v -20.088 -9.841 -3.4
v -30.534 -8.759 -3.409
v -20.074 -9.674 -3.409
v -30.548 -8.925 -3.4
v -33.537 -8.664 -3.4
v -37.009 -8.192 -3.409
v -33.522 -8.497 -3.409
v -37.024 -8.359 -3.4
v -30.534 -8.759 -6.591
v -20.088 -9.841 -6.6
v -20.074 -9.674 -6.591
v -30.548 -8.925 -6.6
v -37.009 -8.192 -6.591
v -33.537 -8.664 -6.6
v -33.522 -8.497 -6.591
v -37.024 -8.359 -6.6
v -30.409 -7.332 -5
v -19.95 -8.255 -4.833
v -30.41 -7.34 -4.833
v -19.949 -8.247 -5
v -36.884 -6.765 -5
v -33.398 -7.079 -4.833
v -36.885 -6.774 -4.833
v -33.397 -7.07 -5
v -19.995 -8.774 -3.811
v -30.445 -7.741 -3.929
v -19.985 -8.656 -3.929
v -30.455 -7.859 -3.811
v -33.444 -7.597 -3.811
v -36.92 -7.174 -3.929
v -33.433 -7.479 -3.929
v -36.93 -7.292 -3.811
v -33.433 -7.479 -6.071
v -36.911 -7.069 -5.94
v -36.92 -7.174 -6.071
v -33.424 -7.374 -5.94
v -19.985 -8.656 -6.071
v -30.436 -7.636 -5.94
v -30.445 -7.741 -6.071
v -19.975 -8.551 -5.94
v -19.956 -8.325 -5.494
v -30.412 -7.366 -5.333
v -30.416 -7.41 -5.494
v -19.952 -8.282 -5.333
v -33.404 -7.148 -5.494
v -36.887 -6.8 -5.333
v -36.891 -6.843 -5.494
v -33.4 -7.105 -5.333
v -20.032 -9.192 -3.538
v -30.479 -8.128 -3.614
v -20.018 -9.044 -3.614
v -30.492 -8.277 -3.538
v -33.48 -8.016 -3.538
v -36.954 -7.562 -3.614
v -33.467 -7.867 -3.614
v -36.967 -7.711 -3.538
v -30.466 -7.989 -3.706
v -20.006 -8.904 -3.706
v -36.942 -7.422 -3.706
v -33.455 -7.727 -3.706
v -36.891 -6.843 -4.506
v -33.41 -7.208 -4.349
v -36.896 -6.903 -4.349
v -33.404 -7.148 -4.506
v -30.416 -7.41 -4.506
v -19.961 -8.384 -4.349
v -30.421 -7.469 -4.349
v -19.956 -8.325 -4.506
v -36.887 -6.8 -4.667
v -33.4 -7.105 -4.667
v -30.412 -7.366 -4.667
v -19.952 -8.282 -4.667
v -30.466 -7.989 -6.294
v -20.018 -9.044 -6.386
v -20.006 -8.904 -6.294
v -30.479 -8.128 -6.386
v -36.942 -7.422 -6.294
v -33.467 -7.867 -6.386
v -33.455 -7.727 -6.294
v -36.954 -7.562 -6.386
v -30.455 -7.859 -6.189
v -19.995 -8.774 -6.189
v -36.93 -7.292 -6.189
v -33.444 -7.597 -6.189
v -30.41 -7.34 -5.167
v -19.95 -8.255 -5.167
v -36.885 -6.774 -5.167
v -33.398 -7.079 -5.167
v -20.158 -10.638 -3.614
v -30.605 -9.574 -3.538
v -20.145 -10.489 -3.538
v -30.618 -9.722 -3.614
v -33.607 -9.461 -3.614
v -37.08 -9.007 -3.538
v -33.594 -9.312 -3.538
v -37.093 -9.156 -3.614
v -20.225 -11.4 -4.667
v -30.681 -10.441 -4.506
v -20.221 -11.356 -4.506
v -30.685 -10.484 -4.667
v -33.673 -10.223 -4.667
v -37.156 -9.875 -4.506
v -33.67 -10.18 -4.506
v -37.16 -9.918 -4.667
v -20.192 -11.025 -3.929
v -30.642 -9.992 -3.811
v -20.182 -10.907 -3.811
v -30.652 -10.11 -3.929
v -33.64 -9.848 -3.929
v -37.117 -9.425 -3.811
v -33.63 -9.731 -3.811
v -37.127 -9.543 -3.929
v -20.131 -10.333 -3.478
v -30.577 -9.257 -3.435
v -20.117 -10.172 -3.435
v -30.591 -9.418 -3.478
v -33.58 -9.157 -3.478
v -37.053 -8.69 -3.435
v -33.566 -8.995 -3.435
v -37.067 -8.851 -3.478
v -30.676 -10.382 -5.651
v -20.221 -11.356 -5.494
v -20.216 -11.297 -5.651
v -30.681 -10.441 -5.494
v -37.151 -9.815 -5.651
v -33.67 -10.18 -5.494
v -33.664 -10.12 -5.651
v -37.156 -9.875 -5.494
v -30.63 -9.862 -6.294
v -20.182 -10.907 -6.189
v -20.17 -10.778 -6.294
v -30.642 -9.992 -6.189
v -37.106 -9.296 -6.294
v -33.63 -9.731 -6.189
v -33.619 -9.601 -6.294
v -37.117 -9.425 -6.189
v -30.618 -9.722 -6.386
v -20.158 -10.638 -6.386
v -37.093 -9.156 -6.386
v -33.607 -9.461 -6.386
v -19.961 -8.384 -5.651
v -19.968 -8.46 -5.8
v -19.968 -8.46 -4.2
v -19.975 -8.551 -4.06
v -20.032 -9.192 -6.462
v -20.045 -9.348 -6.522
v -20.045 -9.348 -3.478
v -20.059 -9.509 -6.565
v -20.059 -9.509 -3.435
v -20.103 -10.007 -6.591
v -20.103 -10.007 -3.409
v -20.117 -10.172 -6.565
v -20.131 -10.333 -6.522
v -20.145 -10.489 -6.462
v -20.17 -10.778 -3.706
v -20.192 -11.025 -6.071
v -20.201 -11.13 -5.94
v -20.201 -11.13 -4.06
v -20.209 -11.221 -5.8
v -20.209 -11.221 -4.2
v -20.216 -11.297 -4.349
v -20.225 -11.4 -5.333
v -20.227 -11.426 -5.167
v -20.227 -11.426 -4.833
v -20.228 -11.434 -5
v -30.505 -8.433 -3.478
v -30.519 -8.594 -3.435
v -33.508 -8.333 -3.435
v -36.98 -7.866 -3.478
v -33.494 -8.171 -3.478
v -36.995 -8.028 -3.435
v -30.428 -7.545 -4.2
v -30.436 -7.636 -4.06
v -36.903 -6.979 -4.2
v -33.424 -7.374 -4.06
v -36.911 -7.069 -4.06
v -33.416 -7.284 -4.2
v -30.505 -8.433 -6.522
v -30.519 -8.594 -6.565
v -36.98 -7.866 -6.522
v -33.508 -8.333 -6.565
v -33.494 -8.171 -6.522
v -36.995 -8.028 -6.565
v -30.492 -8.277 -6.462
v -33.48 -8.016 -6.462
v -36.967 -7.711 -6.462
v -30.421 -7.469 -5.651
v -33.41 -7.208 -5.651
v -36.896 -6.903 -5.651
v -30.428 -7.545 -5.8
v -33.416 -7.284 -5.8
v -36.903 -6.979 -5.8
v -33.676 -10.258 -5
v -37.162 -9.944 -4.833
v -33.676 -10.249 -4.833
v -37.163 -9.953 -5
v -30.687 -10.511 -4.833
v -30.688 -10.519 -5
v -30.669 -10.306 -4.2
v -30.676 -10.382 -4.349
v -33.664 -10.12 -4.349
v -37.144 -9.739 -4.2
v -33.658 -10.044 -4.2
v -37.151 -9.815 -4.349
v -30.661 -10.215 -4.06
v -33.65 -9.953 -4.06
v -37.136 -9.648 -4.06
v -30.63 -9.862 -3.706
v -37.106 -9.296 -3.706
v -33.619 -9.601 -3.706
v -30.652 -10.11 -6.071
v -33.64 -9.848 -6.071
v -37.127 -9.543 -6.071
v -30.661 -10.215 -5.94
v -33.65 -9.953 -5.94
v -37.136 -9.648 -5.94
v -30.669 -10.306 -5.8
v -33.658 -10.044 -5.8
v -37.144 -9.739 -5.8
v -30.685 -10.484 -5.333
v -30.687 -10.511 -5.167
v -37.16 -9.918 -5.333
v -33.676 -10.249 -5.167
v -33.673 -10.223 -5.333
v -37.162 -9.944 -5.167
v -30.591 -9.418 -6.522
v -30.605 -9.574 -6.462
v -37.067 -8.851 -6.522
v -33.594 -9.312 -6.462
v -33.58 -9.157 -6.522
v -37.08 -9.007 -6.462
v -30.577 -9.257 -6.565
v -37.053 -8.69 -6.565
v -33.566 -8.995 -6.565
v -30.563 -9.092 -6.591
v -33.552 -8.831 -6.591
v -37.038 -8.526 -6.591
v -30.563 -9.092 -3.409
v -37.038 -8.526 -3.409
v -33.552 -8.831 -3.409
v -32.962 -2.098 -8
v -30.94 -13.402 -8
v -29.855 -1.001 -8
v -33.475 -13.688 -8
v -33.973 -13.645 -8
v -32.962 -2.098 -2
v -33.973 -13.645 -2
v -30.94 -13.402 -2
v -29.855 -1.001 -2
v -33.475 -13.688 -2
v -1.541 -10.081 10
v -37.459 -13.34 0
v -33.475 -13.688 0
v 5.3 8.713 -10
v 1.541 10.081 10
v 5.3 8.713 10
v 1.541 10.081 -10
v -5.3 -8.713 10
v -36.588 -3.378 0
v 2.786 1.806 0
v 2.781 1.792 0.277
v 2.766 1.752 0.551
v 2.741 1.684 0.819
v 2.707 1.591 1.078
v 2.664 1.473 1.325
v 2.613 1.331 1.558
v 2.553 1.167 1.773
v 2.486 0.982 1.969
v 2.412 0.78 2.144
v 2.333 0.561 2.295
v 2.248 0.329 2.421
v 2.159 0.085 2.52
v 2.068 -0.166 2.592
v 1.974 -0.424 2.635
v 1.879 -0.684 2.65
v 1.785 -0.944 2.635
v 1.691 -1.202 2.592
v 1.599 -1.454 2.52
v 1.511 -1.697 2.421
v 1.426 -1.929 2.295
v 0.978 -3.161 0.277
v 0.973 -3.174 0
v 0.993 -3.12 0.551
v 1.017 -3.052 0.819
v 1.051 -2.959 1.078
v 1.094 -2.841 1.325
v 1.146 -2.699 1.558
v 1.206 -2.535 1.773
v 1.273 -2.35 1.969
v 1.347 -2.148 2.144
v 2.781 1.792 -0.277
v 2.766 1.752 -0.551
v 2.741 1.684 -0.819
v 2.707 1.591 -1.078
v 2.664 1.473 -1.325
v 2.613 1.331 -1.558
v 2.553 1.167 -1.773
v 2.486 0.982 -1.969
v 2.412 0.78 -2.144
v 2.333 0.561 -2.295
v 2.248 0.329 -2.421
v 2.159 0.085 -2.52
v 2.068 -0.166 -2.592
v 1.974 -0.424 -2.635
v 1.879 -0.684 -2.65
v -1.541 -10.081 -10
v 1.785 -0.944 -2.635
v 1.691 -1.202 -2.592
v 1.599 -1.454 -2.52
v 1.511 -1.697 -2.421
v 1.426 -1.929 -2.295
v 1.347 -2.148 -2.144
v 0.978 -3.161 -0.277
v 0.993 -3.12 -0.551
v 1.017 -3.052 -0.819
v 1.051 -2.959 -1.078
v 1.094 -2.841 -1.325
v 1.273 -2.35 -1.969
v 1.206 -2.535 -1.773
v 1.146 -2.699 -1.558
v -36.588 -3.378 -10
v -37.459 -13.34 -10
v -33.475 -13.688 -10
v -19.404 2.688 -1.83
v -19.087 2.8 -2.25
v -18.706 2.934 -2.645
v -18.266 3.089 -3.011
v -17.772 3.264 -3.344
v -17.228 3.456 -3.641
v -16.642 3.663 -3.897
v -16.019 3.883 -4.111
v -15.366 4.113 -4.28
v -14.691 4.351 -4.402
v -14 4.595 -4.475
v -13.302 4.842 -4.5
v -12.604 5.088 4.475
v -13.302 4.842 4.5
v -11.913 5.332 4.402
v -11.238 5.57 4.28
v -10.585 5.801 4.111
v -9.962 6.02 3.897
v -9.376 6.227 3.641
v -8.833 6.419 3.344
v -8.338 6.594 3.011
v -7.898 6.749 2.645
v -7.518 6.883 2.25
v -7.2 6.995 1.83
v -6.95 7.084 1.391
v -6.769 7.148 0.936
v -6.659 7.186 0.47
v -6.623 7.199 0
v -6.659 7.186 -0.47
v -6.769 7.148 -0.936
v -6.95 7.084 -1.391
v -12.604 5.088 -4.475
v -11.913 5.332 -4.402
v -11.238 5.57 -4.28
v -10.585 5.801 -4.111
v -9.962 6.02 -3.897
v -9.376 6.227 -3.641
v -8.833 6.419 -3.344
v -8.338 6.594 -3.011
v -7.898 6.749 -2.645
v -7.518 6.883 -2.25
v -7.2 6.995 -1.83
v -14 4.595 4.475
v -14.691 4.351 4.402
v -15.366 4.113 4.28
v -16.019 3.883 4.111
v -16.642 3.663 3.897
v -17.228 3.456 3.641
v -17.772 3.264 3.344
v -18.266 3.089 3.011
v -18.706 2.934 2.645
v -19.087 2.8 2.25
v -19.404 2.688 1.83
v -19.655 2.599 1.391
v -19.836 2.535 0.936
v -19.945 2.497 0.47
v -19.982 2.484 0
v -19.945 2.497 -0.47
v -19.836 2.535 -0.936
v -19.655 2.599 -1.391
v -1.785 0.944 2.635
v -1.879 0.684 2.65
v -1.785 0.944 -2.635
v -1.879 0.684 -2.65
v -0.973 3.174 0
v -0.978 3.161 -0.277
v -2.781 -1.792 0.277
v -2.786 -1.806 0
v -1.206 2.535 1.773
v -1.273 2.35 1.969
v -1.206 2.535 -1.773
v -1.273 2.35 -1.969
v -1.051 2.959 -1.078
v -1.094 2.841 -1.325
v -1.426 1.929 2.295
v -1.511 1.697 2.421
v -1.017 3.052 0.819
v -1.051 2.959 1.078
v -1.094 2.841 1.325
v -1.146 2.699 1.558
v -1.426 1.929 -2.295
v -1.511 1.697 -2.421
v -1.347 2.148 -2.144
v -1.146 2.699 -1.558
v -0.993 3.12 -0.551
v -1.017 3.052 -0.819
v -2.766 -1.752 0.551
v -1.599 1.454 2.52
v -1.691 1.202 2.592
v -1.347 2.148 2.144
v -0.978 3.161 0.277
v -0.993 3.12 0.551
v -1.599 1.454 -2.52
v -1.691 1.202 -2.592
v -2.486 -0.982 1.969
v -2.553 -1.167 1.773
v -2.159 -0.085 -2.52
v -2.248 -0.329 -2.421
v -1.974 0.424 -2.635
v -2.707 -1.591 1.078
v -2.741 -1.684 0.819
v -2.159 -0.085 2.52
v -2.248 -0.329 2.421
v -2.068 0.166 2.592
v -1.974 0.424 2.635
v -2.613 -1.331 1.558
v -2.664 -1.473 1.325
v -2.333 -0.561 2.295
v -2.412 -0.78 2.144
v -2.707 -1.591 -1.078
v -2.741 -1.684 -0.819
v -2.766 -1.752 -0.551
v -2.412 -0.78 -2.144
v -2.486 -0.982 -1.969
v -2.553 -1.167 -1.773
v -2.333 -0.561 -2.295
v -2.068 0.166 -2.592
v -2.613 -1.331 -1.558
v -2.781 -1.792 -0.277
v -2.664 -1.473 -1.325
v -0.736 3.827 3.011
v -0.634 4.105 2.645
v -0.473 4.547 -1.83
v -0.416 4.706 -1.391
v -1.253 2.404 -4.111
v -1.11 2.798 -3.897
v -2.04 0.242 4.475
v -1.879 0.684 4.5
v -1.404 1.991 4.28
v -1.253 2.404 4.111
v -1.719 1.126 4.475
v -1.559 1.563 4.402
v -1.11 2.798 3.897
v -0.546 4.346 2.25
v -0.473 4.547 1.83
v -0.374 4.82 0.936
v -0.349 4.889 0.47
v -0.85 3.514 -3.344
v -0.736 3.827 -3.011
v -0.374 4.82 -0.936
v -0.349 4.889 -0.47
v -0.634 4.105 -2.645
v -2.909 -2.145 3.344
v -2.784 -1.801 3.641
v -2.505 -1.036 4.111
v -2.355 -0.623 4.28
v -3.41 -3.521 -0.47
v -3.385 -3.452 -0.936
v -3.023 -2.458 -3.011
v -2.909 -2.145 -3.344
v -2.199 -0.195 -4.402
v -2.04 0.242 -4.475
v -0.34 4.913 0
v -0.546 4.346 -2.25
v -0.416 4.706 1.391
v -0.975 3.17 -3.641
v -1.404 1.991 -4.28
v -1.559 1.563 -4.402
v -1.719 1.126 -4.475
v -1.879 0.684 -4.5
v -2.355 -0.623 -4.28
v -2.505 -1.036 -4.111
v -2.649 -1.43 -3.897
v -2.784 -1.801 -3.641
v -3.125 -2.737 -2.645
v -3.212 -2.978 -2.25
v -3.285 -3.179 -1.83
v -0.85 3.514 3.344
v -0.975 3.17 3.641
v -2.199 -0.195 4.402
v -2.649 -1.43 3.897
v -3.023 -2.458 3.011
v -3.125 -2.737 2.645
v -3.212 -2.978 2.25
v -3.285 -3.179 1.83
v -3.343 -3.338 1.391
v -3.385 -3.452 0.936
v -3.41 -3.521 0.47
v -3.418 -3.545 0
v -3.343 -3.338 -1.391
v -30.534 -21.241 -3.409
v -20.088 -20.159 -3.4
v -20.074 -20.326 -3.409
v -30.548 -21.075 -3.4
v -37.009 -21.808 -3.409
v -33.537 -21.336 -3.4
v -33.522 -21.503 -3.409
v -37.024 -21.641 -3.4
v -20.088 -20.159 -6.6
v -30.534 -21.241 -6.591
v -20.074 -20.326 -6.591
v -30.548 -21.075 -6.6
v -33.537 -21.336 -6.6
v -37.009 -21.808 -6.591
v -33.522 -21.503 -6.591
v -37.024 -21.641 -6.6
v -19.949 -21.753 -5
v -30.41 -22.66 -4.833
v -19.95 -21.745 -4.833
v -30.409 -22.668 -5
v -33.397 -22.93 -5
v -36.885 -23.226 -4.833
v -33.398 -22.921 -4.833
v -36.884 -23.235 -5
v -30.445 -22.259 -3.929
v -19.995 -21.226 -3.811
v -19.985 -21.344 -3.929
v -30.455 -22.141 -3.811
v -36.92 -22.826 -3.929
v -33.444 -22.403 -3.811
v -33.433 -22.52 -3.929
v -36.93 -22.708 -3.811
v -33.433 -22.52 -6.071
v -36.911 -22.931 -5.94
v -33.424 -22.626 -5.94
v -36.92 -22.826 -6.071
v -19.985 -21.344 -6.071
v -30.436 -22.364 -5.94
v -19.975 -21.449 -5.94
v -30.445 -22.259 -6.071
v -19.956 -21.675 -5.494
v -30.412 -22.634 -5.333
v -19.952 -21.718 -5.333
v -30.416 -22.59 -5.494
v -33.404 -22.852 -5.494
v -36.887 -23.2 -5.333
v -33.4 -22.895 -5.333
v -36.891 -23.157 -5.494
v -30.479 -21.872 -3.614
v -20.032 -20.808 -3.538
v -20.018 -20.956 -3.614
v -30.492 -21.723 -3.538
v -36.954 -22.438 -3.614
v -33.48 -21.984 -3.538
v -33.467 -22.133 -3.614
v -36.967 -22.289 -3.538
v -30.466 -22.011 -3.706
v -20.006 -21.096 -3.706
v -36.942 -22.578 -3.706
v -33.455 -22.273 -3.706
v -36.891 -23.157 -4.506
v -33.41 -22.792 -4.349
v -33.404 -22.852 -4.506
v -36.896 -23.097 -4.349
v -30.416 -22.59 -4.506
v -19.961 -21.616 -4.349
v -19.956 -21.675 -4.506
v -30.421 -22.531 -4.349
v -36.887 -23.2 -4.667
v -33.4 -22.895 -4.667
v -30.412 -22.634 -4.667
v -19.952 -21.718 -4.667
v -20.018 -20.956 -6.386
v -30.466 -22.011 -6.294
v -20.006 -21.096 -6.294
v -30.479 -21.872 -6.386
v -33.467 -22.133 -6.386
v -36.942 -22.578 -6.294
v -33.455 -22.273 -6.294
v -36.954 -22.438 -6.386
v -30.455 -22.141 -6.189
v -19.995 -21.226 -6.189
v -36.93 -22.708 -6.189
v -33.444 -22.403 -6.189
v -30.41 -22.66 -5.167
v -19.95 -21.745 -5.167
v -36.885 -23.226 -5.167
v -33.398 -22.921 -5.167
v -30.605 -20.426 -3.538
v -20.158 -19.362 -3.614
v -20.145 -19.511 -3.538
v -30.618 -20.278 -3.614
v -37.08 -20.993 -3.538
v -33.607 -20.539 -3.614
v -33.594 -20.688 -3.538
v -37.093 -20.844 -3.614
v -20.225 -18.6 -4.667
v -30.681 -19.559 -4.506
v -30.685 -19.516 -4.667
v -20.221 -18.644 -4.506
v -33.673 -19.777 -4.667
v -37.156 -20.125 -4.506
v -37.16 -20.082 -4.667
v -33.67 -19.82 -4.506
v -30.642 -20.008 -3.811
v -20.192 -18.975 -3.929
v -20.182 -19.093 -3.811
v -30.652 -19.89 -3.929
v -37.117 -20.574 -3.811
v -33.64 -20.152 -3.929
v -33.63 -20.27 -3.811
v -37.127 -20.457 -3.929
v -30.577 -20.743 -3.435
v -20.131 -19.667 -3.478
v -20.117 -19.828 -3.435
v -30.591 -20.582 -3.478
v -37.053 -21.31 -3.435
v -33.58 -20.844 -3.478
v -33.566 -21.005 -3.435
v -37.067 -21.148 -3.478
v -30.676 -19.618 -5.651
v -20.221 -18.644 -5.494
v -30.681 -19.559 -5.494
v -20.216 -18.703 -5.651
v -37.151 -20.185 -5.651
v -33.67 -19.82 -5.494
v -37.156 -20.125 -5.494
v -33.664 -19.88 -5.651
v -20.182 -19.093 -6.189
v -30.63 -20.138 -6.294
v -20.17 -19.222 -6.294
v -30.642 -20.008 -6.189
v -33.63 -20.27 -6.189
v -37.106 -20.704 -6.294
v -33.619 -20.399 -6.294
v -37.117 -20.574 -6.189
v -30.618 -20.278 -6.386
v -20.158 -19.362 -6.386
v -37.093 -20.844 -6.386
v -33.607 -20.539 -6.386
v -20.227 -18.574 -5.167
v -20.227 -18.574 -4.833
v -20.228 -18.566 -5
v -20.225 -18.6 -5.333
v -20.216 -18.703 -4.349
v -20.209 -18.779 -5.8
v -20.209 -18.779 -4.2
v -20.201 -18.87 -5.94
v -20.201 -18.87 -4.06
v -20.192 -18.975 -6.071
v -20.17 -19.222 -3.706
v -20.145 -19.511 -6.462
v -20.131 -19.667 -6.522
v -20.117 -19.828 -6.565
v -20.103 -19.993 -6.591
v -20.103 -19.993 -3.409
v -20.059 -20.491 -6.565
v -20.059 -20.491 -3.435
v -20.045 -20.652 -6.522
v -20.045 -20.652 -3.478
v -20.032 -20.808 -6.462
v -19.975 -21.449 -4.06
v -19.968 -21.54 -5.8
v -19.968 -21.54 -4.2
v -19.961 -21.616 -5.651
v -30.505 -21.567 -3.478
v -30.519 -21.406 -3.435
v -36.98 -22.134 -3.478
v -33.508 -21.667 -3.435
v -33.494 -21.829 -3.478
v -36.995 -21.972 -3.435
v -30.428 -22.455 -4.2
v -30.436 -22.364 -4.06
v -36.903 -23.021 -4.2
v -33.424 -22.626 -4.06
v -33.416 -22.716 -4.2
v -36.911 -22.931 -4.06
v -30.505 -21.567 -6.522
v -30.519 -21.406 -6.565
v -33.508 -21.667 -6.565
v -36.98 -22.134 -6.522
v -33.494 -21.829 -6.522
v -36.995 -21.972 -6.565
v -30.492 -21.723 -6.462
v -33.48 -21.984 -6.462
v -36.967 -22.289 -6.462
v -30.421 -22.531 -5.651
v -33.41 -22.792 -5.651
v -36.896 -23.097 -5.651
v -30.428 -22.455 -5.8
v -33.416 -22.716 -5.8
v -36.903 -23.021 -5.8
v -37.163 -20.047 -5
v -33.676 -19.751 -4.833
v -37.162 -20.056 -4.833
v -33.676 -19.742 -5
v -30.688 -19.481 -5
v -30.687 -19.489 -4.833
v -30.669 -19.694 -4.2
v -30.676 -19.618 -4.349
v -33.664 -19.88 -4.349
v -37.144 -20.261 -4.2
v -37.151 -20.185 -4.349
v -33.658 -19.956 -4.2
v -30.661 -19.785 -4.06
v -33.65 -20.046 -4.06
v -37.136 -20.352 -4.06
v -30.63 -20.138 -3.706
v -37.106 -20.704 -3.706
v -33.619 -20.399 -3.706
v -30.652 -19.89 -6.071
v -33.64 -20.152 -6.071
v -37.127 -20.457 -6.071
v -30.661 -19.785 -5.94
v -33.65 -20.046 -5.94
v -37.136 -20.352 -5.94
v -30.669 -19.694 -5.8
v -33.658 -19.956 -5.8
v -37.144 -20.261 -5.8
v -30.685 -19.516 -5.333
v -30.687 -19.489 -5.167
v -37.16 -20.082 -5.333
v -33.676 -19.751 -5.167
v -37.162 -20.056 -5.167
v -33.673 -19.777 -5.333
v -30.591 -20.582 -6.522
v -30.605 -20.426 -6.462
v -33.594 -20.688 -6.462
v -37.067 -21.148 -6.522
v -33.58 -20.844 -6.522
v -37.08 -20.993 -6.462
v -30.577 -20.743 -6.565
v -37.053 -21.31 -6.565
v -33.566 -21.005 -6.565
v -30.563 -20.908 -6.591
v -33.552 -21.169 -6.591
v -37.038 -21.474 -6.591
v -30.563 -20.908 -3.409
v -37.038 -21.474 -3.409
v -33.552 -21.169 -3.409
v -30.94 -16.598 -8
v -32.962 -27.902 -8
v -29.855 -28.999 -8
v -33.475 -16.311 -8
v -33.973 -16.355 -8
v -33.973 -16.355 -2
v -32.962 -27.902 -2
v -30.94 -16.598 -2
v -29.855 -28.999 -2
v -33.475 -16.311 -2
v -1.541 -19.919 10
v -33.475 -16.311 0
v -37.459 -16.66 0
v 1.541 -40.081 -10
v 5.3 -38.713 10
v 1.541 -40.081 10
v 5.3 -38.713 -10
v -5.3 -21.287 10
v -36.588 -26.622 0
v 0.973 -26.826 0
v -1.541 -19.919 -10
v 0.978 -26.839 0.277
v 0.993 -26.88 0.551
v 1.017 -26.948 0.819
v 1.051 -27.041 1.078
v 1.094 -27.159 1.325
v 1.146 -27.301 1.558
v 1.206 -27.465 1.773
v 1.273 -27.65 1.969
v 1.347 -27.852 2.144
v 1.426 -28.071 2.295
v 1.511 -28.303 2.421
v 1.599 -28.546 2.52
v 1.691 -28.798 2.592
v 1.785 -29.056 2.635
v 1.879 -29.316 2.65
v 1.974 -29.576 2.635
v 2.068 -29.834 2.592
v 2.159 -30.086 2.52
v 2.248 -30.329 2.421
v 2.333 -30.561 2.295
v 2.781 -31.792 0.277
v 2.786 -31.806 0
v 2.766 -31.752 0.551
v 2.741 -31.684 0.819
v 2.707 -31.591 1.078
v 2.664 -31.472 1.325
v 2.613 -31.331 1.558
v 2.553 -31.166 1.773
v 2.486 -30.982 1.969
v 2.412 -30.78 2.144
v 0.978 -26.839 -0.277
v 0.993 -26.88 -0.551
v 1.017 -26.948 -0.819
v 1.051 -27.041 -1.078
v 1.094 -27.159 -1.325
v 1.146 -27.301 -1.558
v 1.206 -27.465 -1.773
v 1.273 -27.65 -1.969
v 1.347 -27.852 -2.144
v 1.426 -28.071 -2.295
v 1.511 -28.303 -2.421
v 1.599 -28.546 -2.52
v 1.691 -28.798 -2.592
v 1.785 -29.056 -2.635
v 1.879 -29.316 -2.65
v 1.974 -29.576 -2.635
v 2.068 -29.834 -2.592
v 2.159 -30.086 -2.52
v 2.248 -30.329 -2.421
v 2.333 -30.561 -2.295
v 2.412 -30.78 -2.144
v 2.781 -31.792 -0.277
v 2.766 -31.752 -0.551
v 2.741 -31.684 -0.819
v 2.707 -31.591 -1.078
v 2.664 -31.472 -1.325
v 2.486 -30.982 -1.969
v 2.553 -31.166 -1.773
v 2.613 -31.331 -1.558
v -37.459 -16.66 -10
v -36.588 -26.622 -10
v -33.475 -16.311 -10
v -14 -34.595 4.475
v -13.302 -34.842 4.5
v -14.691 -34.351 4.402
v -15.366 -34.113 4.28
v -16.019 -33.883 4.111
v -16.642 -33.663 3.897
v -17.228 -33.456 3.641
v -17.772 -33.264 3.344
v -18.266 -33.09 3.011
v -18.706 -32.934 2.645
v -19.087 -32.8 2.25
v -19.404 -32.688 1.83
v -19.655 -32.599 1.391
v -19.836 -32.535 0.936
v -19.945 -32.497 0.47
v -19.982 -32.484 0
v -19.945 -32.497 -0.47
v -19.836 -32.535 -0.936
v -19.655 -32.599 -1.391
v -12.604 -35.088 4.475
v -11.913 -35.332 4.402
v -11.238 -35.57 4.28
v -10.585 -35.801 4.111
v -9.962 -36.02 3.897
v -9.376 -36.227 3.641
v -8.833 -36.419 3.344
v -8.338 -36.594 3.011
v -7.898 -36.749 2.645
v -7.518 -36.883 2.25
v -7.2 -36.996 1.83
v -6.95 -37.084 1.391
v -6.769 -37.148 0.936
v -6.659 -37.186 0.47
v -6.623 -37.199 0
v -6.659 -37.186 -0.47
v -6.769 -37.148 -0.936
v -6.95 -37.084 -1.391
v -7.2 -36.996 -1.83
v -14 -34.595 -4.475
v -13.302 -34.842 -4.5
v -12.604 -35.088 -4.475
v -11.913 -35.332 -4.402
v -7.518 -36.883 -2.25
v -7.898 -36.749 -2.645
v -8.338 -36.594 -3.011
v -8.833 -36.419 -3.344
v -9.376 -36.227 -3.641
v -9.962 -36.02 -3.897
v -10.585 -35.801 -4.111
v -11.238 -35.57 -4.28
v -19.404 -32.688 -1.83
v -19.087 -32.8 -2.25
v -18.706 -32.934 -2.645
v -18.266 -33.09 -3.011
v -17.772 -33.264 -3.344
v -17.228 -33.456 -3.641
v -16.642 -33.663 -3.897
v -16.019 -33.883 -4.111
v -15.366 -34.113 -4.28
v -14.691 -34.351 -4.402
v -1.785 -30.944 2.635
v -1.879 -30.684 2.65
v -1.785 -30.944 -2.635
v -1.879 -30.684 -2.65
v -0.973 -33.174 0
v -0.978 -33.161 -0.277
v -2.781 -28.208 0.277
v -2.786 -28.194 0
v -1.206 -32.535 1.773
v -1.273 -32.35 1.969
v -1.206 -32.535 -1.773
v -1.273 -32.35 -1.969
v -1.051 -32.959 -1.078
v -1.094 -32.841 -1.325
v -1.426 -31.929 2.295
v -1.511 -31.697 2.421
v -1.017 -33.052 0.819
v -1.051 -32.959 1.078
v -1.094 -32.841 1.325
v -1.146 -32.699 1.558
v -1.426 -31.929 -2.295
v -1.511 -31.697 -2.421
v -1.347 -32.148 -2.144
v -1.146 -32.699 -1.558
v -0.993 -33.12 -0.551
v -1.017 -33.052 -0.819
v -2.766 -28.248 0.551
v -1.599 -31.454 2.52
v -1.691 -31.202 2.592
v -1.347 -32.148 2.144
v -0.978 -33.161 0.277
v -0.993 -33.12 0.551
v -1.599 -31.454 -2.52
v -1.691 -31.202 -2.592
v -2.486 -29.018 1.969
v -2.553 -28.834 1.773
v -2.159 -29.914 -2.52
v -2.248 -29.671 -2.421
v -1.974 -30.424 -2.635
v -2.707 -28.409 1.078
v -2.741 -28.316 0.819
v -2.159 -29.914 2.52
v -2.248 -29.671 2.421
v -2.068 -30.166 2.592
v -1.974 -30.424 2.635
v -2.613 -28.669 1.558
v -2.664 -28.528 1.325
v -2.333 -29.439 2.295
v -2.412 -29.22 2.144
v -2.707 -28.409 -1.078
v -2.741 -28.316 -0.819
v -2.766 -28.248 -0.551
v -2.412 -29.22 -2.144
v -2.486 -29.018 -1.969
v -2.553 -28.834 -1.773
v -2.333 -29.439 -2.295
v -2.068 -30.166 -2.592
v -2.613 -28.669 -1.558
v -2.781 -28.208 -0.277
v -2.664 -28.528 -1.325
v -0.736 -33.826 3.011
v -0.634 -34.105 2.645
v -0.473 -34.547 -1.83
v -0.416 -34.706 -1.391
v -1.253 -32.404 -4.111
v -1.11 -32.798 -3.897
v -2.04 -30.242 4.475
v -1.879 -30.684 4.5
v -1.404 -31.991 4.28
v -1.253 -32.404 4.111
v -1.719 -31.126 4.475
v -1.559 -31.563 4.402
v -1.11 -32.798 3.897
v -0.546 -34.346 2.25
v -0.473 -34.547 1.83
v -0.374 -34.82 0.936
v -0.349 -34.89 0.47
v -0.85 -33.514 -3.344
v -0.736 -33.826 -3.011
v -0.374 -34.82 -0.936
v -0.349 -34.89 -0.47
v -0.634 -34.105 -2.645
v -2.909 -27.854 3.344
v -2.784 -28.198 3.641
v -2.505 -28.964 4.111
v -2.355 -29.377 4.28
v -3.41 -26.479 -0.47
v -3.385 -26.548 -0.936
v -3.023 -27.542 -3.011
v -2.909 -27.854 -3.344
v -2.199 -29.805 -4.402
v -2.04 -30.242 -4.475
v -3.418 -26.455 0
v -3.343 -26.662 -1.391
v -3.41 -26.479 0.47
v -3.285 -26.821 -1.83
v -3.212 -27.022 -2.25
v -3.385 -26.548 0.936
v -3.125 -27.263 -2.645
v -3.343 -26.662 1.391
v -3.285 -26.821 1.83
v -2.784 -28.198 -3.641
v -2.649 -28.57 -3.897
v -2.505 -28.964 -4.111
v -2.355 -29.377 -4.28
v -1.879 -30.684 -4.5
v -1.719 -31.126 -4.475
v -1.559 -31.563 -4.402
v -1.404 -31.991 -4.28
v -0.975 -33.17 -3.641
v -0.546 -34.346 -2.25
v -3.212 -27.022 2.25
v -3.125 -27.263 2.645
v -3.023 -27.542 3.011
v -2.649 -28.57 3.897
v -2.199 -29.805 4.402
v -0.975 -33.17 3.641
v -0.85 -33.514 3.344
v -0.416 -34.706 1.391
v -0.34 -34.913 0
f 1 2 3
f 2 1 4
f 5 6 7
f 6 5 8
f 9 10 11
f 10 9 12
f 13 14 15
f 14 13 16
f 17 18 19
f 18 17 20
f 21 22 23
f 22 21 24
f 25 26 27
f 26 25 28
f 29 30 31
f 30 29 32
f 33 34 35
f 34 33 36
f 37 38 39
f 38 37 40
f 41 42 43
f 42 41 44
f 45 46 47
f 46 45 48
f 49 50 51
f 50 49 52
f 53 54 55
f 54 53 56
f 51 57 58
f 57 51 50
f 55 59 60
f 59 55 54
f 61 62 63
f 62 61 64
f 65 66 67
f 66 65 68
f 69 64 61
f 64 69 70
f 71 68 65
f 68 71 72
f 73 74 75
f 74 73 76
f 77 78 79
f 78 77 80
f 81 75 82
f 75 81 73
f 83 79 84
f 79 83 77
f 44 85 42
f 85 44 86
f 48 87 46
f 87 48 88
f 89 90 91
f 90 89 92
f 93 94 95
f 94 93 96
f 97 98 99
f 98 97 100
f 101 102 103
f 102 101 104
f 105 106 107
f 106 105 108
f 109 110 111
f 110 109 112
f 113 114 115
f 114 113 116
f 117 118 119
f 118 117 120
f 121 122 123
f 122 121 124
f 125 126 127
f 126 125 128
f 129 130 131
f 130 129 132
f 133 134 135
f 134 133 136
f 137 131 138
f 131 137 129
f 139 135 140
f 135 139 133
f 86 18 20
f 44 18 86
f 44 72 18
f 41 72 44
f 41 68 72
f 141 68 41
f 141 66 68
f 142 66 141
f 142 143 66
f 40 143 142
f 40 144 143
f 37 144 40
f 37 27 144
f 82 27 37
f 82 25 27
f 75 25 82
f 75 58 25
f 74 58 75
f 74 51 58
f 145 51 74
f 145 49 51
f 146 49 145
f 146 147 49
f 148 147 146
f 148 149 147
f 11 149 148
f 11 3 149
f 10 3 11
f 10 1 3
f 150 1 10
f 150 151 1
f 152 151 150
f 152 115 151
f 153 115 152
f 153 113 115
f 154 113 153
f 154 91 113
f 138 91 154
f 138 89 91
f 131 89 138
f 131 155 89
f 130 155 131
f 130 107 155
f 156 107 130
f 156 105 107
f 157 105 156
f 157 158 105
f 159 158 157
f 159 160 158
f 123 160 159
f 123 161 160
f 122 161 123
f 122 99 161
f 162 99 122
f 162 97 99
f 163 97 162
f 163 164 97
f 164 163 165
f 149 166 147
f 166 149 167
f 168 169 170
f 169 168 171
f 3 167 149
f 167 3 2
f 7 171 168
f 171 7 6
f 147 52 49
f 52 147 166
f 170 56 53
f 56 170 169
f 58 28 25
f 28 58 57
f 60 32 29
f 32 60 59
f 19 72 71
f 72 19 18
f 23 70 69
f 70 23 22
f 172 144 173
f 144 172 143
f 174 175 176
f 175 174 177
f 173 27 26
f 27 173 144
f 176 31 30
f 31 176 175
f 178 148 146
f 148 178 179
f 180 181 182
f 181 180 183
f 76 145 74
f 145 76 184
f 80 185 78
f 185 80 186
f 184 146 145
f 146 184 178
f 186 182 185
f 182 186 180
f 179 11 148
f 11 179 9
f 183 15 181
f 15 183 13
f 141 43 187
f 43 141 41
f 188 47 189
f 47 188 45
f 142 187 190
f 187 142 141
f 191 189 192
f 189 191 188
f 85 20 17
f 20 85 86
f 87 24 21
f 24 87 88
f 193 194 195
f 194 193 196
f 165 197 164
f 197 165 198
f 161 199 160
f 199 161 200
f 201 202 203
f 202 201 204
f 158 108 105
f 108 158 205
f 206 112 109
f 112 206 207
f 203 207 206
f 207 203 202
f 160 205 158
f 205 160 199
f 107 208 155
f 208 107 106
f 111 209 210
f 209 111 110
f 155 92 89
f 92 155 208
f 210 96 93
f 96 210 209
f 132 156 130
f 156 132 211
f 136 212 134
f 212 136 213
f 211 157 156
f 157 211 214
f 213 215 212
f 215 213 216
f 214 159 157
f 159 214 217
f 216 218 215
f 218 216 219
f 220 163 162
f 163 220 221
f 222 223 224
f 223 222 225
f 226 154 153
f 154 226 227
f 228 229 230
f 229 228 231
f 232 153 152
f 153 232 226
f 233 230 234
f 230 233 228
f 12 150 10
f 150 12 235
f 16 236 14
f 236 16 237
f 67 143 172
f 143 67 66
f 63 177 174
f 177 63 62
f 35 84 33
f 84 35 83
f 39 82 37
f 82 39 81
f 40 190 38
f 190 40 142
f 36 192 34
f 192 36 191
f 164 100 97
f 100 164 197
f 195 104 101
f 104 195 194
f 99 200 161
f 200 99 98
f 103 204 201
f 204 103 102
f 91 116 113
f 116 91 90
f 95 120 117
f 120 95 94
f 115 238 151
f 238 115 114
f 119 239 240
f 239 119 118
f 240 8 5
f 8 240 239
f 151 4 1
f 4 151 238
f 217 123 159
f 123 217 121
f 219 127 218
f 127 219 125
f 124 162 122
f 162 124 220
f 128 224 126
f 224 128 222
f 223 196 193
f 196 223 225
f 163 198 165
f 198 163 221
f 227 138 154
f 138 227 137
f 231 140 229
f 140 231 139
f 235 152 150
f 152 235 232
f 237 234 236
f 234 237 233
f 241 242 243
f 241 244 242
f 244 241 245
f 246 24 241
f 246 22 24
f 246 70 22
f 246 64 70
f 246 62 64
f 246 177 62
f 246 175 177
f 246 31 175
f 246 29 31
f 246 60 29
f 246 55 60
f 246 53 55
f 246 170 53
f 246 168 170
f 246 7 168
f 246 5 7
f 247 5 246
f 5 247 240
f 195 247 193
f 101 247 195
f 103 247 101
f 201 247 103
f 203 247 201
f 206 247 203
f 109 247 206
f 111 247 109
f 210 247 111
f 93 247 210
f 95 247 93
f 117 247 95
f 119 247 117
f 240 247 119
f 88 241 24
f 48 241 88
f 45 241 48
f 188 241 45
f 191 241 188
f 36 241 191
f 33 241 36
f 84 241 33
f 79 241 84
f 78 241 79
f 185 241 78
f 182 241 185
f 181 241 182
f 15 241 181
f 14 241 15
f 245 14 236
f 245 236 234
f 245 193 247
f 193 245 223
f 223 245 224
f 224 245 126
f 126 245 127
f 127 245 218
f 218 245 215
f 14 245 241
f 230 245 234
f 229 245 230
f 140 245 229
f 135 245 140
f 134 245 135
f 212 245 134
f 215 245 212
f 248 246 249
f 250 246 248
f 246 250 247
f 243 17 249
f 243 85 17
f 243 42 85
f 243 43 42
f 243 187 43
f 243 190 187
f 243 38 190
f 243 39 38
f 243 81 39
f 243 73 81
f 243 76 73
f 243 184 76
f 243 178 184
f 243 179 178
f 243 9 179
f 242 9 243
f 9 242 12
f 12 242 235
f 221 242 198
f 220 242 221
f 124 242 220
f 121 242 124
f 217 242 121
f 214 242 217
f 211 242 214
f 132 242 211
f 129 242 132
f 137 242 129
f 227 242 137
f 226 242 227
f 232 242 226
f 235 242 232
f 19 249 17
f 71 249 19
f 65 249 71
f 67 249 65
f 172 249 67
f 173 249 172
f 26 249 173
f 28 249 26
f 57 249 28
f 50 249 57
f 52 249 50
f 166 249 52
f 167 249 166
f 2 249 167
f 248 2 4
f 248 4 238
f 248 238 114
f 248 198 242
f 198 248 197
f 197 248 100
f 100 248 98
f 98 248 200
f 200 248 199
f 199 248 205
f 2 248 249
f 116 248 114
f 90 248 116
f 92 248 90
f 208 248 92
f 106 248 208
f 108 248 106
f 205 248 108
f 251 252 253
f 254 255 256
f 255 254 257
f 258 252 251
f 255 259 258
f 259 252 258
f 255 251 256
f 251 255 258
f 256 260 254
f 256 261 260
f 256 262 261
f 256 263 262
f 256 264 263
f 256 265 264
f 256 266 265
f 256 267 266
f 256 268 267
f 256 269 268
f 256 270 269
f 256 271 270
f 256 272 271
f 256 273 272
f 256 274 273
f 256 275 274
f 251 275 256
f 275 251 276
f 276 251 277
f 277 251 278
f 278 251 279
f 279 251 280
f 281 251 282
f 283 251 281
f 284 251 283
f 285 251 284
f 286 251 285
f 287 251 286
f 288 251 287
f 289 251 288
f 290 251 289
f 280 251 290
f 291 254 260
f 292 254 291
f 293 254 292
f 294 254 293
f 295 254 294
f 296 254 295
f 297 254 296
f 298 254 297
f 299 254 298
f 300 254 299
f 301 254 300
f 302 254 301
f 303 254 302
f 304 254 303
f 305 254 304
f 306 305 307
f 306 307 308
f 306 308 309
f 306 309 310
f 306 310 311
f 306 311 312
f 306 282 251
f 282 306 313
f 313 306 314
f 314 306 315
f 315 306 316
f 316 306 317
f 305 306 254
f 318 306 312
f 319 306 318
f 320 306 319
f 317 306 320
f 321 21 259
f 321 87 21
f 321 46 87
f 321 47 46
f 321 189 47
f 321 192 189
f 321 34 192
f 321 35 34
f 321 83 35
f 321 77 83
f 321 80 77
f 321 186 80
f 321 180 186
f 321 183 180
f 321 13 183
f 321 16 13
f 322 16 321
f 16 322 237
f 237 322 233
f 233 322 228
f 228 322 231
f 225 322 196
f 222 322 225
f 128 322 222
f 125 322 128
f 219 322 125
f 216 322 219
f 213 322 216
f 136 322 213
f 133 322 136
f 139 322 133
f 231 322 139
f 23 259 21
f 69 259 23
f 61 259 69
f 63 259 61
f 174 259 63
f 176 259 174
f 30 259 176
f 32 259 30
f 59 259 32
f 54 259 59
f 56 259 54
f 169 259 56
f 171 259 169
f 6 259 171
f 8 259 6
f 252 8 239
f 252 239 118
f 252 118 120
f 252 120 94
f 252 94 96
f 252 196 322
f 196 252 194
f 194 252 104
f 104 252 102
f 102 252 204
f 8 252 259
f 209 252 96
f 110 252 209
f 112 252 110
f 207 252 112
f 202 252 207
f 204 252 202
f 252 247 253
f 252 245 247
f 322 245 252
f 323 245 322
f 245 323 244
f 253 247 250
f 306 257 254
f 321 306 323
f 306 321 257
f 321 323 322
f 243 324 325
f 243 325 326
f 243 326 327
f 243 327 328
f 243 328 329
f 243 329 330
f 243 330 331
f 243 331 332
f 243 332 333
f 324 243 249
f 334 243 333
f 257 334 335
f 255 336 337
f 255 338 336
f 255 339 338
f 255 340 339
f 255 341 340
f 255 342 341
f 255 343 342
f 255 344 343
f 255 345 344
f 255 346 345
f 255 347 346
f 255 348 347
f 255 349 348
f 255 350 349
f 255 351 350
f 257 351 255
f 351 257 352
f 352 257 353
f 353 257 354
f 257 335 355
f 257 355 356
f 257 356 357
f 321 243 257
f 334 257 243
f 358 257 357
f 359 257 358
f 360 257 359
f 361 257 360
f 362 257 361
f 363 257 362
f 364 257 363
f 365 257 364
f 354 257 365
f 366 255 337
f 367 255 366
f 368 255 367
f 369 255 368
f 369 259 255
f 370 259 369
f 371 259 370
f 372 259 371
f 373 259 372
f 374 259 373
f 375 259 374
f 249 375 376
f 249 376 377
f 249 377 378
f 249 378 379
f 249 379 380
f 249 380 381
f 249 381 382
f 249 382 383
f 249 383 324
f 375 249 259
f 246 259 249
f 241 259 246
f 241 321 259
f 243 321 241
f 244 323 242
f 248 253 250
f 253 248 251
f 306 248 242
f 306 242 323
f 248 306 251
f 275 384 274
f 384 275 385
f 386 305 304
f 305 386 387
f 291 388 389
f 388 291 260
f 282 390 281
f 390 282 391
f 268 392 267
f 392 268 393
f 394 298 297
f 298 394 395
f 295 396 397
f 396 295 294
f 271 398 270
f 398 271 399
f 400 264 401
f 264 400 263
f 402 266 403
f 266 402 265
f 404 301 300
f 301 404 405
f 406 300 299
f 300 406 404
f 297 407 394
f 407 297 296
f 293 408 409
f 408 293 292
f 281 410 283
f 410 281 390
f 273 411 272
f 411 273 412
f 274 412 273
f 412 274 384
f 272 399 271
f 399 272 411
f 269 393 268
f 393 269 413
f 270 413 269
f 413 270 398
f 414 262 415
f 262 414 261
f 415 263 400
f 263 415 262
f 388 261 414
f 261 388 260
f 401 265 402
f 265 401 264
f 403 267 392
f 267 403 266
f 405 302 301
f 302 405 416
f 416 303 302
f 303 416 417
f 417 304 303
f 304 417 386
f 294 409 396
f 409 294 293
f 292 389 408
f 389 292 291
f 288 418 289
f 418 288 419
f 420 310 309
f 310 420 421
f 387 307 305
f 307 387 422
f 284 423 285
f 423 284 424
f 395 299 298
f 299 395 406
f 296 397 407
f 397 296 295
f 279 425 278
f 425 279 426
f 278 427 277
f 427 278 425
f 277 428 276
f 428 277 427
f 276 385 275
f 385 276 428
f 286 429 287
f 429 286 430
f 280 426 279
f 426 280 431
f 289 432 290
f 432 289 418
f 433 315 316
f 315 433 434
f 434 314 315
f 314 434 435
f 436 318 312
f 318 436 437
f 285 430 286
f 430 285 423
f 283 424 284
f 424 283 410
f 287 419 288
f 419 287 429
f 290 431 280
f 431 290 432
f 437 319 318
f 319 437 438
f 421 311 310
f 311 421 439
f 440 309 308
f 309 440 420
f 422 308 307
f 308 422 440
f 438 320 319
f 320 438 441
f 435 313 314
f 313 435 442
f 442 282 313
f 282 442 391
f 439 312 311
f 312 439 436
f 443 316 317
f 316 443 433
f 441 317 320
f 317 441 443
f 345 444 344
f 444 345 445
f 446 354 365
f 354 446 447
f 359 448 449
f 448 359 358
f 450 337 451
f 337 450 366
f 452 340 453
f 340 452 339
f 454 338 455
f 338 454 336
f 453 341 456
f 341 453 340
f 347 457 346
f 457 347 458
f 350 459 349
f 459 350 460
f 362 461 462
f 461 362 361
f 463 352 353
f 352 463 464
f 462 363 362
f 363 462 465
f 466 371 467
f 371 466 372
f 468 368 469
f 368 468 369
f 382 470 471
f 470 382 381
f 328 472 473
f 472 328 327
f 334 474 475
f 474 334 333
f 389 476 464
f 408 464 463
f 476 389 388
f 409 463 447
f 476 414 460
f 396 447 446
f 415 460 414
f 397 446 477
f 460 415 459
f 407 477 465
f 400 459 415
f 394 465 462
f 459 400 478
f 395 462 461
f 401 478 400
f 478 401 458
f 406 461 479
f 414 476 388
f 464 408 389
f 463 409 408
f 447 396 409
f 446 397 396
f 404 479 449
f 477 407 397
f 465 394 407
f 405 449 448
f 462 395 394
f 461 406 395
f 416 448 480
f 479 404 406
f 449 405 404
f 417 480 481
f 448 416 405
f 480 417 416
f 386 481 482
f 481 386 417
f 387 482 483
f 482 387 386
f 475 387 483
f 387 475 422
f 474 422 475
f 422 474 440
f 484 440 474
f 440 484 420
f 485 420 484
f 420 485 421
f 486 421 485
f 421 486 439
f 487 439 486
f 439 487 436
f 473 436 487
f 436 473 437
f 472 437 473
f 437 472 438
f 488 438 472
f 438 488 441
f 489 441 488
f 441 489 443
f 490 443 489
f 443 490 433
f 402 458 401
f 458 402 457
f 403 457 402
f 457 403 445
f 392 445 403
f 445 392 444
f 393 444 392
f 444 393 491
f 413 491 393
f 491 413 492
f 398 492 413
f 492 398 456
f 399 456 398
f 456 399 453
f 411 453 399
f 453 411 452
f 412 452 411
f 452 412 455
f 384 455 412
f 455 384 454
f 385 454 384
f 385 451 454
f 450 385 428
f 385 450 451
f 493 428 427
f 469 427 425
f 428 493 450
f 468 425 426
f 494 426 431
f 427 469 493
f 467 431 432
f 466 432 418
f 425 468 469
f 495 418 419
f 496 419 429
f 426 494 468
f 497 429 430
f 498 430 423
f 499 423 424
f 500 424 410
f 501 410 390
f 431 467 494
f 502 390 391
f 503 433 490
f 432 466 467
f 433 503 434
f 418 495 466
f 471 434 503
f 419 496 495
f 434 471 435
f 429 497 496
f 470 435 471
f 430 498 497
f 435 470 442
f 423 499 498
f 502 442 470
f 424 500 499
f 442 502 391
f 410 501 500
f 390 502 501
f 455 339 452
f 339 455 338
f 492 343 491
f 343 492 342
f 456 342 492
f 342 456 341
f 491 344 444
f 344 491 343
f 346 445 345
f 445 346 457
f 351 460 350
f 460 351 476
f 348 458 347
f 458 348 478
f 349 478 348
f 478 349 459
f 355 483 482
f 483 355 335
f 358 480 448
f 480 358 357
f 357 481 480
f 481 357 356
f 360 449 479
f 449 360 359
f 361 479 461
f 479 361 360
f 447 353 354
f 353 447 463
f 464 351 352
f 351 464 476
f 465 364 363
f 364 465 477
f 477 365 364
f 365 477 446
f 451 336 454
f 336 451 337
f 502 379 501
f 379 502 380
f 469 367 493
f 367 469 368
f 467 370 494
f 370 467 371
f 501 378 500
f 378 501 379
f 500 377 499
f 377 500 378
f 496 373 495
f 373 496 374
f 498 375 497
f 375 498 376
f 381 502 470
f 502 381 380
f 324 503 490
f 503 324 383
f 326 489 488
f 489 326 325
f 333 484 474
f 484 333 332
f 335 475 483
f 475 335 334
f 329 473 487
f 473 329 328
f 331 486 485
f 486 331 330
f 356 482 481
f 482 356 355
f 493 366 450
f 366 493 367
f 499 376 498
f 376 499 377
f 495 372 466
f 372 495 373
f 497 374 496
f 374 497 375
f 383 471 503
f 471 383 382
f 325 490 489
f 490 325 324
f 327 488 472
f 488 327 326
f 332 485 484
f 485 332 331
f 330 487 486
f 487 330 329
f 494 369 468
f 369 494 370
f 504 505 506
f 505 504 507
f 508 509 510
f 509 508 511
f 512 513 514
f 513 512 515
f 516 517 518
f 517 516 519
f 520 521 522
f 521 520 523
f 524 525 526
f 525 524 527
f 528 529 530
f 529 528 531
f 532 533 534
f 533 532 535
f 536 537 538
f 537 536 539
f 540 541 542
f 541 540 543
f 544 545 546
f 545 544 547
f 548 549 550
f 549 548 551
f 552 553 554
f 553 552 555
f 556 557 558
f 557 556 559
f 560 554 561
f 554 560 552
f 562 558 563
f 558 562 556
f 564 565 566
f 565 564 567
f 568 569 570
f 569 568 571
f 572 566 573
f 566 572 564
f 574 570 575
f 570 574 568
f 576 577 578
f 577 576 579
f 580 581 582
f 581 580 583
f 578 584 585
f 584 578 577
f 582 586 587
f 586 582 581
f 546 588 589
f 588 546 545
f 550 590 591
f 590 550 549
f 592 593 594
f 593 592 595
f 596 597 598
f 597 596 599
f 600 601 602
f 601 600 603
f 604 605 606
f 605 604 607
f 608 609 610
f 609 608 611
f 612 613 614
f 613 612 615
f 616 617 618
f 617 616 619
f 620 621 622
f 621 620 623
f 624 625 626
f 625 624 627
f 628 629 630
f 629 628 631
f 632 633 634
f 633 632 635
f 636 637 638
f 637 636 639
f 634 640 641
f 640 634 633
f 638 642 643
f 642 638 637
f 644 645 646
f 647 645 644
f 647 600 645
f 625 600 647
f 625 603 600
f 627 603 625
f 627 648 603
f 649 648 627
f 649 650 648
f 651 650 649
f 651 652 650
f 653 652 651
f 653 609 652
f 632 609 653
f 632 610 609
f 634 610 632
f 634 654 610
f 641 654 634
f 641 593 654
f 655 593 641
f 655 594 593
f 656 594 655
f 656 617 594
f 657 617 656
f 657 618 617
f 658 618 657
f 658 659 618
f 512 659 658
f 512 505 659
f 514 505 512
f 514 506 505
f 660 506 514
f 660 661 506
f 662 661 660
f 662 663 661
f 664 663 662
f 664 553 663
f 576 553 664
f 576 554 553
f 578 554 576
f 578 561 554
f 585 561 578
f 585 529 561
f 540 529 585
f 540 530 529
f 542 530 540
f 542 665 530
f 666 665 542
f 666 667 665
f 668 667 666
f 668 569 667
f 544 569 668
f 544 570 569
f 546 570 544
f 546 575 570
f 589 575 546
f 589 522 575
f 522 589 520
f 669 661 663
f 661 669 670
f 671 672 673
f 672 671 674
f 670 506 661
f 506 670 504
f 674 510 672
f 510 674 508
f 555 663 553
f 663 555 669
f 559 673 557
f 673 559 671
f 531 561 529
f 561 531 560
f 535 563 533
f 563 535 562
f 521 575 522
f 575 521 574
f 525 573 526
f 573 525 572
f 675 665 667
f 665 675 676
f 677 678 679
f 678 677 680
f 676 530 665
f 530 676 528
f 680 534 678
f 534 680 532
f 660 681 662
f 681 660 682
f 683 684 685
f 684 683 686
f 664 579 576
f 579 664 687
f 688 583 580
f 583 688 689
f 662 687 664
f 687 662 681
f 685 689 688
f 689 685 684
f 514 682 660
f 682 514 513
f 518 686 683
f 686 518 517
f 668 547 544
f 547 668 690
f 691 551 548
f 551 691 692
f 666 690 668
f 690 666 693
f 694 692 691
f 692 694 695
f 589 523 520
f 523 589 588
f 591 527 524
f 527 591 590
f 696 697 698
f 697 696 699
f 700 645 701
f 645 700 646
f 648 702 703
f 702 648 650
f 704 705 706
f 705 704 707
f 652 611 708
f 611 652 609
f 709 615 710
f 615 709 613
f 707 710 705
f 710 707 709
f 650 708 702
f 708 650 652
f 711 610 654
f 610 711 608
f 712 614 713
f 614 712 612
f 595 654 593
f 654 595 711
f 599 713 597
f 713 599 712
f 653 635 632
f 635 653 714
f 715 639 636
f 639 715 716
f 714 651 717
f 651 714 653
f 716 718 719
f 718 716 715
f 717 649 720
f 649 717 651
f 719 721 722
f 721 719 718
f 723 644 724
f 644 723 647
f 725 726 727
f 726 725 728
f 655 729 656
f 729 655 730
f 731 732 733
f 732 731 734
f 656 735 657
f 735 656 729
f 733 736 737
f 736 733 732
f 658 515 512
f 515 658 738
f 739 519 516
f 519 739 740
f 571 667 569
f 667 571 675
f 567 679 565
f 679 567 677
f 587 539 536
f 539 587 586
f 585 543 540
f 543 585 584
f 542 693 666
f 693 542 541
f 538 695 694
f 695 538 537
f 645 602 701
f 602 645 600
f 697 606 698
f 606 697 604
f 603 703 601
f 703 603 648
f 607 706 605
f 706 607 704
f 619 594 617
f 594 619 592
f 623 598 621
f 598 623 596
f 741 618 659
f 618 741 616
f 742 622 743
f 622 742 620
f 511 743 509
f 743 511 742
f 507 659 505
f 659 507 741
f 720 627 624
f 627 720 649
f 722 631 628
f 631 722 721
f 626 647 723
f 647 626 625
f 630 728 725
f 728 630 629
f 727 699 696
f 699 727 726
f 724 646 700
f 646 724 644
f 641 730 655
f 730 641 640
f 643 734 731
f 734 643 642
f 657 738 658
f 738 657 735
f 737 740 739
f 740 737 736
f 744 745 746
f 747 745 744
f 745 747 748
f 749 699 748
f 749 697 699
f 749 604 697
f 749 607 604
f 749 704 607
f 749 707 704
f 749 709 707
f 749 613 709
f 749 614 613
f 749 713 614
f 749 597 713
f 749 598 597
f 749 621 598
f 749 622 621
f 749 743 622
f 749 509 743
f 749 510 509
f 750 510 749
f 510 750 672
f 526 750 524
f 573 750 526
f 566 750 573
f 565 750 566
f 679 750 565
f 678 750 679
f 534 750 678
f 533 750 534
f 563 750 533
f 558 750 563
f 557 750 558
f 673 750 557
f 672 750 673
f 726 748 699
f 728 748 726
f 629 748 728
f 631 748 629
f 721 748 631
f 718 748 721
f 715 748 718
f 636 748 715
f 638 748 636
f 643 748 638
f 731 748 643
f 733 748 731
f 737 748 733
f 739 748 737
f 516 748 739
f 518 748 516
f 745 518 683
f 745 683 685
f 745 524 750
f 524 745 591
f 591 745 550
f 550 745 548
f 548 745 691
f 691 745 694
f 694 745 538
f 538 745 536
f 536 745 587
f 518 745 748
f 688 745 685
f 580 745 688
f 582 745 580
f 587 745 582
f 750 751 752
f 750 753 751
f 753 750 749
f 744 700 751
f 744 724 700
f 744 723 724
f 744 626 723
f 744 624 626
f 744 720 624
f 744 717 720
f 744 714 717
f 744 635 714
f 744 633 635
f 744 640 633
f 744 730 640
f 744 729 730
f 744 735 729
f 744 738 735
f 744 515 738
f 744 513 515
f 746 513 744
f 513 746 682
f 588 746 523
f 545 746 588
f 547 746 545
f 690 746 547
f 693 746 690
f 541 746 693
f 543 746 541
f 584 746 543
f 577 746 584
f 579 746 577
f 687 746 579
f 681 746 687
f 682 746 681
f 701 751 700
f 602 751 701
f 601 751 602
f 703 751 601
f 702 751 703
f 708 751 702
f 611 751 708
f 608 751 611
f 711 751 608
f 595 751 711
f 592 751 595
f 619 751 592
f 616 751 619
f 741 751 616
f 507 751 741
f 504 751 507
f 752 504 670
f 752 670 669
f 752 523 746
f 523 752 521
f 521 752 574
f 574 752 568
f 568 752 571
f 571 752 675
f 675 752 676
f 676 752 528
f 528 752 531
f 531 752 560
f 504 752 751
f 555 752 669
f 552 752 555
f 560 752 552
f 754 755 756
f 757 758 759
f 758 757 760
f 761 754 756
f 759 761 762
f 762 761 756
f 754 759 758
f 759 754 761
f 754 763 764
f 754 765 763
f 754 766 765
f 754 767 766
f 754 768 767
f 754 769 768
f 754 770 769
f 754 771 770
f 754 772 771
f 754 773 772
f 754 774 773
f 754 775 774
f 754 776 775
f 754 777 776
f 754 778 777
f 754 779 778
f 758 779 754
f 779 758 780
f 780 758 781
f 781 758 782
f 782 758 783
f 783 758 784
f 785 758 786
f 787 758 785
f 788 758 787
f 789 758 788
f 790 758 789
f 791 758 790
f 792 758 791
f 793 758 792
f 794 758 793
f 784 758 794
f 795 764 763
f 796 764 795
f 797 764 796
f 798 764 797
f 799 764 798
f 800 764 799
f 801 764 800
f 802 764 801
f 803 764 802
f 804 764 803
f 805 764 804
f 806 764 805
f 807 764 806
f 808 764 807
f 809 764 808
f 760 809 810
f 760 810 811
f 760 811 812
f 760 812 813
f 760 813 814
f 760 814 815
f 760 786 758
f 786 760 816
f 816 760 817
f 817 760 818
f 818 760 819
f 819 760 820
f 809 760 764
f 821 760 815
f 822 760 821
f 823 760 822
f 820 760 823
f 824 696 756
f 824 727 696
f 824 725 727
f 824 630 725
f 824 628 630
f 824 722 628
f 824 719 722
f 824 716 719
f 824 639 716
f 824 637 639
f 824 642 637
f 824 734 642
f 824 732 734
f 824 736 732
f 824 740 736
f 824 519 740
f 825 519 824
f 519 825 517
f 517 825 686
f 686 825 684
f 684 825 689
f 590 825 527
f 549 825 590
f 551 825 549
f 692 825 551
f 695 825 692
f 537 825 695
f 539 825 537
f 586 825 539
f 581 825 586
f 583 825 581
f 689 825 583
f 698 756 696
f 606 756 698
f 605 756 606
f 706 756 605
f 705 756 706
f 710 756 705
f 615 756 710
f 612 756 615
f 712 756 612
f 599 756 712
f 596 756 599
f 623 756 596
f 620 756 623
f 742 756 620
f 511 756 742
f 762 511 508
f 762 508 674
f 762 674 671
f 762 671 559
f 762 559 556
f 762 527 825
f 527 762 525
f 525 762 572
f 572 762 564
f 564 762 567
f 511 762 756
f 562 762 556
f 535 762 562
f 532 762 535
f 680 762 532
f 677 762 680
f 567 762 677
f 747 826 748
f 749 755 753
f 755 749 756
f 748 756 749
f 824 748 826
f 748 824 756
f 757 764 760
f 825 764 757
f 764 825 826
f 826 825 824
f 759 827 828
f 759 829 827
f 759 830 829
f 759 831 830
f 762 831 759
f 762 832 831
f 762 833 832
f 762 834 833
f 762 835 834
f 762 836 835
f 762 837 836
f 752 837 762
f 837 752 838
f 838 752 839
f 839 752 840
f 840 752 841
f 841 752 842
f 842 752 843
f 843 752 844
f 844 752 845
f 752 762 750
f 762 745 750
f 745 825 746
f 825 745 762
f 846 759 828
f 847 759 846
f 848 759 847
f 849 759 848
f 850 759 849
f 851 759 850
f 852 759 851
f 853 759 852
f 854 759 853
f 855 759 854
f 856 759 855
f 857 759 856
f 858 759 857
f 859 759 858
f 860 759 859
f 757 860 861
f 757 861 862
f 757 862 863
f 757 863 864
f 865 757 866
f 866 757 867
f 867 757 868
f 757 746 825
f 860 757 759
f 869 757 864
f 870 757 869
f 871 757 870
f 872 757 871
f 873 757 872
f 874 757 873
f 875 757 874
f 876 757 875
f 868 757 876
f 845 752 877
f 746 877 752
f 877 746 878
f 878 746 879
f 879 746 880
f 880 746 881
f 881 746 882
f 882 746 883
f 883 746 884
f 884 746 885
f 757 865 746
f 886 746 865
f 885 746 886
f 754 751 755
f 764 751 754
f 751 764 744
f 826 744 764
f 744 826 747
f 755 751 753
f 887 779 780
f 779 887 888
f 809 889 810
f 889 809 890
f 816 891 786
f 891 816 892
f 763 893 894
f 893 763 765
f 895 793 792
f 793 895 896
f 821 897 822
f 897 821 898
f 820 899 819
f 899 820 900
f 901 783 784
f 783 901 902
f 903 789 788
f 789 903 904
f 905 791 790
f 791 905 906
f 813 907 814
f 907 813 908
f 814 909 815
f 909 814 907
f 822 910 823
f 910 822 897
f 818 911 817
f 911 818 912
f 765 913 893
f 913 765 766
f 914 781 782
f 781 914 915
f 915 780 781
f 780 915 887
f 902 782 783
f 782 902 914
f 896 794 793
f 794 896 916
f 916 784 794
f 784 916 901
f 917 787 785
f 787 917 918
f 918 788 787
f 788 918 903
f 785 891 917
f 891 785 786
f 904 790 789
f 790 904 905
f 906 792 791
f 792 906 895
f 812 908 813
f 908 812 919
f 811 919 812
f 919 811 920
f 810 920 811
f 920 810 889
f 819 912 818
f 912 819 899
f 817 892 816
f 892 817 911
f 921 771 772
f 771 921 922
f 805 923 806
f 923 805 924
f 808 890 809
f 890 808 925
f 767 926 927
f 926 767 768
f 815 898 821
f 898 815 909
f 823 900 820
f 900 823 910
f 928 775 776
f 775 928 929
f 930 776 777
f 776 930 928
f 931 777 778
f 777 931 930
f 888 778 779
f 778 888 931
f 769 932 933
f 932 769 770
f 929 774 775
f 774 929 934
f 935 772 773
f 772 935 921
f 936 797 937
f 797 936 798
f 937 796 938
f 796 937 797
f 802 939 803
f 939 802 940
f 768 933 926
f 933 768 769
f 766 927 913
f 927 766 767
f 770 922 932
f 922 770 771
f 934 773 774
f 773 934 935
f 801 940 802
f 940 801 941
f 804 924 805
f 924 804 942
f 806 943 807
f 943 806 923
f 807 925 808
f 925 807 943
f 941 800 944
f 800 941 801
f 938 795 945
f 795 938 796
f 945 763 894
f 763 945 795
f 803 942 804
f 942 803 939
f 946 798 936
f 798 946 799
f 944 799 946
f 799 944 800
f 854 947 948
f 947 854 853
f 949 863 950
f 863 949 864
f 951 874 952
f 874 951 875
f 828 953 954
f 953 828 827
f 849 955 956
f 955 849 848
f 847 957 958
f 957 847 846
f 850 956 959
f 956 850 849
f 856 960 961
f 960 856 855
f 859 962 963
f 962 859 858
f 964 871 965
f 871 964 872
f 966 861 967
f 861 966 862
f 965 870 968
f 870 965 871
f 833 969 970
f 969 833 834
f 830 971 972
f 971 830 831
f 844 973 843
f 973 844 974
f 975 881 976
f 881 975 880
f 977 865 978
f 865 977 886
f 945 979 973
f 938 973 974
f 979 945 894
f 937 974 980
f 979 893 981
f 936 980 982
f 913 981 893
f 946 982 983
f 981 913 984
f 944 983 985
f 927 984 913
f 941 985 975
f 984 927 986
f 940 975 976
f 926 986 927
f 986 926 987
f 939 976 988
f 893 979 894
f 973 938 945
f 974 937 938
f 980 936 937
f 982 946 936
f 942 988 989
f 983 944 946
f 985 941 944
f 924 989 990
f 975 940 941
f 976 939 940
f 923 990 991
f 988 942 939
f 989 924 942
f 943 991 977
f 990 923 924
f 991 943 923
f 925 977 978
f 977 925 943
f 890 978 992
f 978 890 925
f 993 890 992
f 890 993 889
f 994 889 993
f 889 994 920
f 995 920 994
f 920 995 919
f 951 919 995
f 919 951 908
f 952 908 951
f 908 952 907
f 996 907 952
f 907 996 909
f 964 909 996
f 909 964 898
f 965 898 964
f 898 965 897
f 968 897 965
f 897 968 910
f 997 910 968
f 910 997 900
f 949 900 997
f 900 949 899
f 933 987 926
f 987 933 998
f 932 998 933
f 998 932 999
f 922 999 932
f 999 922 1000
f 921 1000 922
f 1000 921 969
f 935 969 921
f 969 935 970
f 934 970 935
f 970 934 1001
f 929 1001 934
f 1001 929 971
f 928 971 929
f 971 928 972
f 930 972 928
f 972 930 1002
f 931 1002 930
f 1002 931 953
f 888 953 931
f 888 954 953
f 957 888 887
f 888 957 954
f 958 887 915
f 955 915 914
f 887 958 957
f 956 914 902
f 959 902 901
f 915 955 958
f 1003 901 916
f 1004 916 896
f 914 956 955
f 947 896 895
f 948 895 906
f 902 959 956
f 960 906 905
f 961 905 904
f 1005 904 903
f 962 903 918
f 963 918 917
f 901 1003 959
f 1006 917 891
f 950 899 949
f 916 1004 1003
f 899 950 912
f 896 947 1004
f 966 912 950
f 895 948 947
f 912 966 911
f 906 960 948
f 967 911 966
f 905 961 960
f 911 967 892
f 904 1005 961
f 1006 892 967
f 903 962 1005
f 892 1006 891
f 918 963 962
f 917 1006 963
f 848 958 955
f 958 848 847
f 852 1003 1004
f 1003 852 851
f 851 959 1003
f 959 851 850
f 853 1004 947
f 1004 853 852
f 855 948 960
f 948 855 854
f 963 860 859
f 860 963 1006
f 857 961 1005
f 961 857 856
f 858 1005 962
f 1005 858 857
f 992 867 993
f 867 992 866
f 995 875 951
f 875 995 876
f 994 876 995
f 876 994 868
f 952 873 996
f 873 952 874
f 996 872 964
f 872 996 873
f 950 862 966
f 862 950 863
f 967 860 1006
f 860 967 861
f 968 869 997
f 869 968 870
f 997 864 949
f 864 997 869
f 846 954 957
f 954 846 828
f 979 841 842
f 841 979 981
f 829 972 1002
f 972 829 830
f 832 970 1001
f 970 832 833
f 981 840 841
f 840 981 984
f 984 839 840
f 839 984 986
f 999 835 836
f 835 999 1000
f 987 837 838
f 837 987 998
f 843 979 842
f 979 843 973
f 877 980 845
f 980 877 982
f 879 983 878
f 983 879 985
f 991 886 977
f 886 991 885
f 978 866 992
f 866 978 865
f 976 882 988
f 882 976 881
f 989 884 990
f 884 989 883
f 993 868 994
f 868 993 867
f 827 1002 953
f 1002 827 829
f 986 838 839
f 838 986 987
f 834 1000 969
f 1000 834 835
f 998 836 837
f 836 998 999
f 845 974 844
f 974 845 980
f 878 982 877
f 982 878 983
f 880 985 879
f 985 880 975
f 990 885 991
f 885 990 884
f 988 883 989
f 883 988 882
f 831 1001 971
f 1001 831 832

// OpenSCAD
$fn=60;

module fan_arm(){
difference(){
   
hull(){
 cube([20,20,4],center=true);


translate([-5,-20,30])
rotate(a=15,v=[1,0,0])
cube([10,10,4],center=true);
}
 cylinder(d=5.3,h=40,center=true);
translate([0,0,22])
 cylinder(d=9,h=40,center=true);
translate([-5,-20,30])
rotate(a=15,v=[1,0,0]){
cylinder(d=3.2,h=30,center=true);
    translate([0,0,-3])
cube([6,30,3],center=true);    
    }
}
}

rotate(a=-20,v=[0,0,1])
rotate(a=-90,v=[0,1,0])
fan_arm();

translate([0,-30,0])
rotate(a=200,v=[0,0,1])
rotate(a=90,v=[0,1,0])
mirror()
fan_arm();
